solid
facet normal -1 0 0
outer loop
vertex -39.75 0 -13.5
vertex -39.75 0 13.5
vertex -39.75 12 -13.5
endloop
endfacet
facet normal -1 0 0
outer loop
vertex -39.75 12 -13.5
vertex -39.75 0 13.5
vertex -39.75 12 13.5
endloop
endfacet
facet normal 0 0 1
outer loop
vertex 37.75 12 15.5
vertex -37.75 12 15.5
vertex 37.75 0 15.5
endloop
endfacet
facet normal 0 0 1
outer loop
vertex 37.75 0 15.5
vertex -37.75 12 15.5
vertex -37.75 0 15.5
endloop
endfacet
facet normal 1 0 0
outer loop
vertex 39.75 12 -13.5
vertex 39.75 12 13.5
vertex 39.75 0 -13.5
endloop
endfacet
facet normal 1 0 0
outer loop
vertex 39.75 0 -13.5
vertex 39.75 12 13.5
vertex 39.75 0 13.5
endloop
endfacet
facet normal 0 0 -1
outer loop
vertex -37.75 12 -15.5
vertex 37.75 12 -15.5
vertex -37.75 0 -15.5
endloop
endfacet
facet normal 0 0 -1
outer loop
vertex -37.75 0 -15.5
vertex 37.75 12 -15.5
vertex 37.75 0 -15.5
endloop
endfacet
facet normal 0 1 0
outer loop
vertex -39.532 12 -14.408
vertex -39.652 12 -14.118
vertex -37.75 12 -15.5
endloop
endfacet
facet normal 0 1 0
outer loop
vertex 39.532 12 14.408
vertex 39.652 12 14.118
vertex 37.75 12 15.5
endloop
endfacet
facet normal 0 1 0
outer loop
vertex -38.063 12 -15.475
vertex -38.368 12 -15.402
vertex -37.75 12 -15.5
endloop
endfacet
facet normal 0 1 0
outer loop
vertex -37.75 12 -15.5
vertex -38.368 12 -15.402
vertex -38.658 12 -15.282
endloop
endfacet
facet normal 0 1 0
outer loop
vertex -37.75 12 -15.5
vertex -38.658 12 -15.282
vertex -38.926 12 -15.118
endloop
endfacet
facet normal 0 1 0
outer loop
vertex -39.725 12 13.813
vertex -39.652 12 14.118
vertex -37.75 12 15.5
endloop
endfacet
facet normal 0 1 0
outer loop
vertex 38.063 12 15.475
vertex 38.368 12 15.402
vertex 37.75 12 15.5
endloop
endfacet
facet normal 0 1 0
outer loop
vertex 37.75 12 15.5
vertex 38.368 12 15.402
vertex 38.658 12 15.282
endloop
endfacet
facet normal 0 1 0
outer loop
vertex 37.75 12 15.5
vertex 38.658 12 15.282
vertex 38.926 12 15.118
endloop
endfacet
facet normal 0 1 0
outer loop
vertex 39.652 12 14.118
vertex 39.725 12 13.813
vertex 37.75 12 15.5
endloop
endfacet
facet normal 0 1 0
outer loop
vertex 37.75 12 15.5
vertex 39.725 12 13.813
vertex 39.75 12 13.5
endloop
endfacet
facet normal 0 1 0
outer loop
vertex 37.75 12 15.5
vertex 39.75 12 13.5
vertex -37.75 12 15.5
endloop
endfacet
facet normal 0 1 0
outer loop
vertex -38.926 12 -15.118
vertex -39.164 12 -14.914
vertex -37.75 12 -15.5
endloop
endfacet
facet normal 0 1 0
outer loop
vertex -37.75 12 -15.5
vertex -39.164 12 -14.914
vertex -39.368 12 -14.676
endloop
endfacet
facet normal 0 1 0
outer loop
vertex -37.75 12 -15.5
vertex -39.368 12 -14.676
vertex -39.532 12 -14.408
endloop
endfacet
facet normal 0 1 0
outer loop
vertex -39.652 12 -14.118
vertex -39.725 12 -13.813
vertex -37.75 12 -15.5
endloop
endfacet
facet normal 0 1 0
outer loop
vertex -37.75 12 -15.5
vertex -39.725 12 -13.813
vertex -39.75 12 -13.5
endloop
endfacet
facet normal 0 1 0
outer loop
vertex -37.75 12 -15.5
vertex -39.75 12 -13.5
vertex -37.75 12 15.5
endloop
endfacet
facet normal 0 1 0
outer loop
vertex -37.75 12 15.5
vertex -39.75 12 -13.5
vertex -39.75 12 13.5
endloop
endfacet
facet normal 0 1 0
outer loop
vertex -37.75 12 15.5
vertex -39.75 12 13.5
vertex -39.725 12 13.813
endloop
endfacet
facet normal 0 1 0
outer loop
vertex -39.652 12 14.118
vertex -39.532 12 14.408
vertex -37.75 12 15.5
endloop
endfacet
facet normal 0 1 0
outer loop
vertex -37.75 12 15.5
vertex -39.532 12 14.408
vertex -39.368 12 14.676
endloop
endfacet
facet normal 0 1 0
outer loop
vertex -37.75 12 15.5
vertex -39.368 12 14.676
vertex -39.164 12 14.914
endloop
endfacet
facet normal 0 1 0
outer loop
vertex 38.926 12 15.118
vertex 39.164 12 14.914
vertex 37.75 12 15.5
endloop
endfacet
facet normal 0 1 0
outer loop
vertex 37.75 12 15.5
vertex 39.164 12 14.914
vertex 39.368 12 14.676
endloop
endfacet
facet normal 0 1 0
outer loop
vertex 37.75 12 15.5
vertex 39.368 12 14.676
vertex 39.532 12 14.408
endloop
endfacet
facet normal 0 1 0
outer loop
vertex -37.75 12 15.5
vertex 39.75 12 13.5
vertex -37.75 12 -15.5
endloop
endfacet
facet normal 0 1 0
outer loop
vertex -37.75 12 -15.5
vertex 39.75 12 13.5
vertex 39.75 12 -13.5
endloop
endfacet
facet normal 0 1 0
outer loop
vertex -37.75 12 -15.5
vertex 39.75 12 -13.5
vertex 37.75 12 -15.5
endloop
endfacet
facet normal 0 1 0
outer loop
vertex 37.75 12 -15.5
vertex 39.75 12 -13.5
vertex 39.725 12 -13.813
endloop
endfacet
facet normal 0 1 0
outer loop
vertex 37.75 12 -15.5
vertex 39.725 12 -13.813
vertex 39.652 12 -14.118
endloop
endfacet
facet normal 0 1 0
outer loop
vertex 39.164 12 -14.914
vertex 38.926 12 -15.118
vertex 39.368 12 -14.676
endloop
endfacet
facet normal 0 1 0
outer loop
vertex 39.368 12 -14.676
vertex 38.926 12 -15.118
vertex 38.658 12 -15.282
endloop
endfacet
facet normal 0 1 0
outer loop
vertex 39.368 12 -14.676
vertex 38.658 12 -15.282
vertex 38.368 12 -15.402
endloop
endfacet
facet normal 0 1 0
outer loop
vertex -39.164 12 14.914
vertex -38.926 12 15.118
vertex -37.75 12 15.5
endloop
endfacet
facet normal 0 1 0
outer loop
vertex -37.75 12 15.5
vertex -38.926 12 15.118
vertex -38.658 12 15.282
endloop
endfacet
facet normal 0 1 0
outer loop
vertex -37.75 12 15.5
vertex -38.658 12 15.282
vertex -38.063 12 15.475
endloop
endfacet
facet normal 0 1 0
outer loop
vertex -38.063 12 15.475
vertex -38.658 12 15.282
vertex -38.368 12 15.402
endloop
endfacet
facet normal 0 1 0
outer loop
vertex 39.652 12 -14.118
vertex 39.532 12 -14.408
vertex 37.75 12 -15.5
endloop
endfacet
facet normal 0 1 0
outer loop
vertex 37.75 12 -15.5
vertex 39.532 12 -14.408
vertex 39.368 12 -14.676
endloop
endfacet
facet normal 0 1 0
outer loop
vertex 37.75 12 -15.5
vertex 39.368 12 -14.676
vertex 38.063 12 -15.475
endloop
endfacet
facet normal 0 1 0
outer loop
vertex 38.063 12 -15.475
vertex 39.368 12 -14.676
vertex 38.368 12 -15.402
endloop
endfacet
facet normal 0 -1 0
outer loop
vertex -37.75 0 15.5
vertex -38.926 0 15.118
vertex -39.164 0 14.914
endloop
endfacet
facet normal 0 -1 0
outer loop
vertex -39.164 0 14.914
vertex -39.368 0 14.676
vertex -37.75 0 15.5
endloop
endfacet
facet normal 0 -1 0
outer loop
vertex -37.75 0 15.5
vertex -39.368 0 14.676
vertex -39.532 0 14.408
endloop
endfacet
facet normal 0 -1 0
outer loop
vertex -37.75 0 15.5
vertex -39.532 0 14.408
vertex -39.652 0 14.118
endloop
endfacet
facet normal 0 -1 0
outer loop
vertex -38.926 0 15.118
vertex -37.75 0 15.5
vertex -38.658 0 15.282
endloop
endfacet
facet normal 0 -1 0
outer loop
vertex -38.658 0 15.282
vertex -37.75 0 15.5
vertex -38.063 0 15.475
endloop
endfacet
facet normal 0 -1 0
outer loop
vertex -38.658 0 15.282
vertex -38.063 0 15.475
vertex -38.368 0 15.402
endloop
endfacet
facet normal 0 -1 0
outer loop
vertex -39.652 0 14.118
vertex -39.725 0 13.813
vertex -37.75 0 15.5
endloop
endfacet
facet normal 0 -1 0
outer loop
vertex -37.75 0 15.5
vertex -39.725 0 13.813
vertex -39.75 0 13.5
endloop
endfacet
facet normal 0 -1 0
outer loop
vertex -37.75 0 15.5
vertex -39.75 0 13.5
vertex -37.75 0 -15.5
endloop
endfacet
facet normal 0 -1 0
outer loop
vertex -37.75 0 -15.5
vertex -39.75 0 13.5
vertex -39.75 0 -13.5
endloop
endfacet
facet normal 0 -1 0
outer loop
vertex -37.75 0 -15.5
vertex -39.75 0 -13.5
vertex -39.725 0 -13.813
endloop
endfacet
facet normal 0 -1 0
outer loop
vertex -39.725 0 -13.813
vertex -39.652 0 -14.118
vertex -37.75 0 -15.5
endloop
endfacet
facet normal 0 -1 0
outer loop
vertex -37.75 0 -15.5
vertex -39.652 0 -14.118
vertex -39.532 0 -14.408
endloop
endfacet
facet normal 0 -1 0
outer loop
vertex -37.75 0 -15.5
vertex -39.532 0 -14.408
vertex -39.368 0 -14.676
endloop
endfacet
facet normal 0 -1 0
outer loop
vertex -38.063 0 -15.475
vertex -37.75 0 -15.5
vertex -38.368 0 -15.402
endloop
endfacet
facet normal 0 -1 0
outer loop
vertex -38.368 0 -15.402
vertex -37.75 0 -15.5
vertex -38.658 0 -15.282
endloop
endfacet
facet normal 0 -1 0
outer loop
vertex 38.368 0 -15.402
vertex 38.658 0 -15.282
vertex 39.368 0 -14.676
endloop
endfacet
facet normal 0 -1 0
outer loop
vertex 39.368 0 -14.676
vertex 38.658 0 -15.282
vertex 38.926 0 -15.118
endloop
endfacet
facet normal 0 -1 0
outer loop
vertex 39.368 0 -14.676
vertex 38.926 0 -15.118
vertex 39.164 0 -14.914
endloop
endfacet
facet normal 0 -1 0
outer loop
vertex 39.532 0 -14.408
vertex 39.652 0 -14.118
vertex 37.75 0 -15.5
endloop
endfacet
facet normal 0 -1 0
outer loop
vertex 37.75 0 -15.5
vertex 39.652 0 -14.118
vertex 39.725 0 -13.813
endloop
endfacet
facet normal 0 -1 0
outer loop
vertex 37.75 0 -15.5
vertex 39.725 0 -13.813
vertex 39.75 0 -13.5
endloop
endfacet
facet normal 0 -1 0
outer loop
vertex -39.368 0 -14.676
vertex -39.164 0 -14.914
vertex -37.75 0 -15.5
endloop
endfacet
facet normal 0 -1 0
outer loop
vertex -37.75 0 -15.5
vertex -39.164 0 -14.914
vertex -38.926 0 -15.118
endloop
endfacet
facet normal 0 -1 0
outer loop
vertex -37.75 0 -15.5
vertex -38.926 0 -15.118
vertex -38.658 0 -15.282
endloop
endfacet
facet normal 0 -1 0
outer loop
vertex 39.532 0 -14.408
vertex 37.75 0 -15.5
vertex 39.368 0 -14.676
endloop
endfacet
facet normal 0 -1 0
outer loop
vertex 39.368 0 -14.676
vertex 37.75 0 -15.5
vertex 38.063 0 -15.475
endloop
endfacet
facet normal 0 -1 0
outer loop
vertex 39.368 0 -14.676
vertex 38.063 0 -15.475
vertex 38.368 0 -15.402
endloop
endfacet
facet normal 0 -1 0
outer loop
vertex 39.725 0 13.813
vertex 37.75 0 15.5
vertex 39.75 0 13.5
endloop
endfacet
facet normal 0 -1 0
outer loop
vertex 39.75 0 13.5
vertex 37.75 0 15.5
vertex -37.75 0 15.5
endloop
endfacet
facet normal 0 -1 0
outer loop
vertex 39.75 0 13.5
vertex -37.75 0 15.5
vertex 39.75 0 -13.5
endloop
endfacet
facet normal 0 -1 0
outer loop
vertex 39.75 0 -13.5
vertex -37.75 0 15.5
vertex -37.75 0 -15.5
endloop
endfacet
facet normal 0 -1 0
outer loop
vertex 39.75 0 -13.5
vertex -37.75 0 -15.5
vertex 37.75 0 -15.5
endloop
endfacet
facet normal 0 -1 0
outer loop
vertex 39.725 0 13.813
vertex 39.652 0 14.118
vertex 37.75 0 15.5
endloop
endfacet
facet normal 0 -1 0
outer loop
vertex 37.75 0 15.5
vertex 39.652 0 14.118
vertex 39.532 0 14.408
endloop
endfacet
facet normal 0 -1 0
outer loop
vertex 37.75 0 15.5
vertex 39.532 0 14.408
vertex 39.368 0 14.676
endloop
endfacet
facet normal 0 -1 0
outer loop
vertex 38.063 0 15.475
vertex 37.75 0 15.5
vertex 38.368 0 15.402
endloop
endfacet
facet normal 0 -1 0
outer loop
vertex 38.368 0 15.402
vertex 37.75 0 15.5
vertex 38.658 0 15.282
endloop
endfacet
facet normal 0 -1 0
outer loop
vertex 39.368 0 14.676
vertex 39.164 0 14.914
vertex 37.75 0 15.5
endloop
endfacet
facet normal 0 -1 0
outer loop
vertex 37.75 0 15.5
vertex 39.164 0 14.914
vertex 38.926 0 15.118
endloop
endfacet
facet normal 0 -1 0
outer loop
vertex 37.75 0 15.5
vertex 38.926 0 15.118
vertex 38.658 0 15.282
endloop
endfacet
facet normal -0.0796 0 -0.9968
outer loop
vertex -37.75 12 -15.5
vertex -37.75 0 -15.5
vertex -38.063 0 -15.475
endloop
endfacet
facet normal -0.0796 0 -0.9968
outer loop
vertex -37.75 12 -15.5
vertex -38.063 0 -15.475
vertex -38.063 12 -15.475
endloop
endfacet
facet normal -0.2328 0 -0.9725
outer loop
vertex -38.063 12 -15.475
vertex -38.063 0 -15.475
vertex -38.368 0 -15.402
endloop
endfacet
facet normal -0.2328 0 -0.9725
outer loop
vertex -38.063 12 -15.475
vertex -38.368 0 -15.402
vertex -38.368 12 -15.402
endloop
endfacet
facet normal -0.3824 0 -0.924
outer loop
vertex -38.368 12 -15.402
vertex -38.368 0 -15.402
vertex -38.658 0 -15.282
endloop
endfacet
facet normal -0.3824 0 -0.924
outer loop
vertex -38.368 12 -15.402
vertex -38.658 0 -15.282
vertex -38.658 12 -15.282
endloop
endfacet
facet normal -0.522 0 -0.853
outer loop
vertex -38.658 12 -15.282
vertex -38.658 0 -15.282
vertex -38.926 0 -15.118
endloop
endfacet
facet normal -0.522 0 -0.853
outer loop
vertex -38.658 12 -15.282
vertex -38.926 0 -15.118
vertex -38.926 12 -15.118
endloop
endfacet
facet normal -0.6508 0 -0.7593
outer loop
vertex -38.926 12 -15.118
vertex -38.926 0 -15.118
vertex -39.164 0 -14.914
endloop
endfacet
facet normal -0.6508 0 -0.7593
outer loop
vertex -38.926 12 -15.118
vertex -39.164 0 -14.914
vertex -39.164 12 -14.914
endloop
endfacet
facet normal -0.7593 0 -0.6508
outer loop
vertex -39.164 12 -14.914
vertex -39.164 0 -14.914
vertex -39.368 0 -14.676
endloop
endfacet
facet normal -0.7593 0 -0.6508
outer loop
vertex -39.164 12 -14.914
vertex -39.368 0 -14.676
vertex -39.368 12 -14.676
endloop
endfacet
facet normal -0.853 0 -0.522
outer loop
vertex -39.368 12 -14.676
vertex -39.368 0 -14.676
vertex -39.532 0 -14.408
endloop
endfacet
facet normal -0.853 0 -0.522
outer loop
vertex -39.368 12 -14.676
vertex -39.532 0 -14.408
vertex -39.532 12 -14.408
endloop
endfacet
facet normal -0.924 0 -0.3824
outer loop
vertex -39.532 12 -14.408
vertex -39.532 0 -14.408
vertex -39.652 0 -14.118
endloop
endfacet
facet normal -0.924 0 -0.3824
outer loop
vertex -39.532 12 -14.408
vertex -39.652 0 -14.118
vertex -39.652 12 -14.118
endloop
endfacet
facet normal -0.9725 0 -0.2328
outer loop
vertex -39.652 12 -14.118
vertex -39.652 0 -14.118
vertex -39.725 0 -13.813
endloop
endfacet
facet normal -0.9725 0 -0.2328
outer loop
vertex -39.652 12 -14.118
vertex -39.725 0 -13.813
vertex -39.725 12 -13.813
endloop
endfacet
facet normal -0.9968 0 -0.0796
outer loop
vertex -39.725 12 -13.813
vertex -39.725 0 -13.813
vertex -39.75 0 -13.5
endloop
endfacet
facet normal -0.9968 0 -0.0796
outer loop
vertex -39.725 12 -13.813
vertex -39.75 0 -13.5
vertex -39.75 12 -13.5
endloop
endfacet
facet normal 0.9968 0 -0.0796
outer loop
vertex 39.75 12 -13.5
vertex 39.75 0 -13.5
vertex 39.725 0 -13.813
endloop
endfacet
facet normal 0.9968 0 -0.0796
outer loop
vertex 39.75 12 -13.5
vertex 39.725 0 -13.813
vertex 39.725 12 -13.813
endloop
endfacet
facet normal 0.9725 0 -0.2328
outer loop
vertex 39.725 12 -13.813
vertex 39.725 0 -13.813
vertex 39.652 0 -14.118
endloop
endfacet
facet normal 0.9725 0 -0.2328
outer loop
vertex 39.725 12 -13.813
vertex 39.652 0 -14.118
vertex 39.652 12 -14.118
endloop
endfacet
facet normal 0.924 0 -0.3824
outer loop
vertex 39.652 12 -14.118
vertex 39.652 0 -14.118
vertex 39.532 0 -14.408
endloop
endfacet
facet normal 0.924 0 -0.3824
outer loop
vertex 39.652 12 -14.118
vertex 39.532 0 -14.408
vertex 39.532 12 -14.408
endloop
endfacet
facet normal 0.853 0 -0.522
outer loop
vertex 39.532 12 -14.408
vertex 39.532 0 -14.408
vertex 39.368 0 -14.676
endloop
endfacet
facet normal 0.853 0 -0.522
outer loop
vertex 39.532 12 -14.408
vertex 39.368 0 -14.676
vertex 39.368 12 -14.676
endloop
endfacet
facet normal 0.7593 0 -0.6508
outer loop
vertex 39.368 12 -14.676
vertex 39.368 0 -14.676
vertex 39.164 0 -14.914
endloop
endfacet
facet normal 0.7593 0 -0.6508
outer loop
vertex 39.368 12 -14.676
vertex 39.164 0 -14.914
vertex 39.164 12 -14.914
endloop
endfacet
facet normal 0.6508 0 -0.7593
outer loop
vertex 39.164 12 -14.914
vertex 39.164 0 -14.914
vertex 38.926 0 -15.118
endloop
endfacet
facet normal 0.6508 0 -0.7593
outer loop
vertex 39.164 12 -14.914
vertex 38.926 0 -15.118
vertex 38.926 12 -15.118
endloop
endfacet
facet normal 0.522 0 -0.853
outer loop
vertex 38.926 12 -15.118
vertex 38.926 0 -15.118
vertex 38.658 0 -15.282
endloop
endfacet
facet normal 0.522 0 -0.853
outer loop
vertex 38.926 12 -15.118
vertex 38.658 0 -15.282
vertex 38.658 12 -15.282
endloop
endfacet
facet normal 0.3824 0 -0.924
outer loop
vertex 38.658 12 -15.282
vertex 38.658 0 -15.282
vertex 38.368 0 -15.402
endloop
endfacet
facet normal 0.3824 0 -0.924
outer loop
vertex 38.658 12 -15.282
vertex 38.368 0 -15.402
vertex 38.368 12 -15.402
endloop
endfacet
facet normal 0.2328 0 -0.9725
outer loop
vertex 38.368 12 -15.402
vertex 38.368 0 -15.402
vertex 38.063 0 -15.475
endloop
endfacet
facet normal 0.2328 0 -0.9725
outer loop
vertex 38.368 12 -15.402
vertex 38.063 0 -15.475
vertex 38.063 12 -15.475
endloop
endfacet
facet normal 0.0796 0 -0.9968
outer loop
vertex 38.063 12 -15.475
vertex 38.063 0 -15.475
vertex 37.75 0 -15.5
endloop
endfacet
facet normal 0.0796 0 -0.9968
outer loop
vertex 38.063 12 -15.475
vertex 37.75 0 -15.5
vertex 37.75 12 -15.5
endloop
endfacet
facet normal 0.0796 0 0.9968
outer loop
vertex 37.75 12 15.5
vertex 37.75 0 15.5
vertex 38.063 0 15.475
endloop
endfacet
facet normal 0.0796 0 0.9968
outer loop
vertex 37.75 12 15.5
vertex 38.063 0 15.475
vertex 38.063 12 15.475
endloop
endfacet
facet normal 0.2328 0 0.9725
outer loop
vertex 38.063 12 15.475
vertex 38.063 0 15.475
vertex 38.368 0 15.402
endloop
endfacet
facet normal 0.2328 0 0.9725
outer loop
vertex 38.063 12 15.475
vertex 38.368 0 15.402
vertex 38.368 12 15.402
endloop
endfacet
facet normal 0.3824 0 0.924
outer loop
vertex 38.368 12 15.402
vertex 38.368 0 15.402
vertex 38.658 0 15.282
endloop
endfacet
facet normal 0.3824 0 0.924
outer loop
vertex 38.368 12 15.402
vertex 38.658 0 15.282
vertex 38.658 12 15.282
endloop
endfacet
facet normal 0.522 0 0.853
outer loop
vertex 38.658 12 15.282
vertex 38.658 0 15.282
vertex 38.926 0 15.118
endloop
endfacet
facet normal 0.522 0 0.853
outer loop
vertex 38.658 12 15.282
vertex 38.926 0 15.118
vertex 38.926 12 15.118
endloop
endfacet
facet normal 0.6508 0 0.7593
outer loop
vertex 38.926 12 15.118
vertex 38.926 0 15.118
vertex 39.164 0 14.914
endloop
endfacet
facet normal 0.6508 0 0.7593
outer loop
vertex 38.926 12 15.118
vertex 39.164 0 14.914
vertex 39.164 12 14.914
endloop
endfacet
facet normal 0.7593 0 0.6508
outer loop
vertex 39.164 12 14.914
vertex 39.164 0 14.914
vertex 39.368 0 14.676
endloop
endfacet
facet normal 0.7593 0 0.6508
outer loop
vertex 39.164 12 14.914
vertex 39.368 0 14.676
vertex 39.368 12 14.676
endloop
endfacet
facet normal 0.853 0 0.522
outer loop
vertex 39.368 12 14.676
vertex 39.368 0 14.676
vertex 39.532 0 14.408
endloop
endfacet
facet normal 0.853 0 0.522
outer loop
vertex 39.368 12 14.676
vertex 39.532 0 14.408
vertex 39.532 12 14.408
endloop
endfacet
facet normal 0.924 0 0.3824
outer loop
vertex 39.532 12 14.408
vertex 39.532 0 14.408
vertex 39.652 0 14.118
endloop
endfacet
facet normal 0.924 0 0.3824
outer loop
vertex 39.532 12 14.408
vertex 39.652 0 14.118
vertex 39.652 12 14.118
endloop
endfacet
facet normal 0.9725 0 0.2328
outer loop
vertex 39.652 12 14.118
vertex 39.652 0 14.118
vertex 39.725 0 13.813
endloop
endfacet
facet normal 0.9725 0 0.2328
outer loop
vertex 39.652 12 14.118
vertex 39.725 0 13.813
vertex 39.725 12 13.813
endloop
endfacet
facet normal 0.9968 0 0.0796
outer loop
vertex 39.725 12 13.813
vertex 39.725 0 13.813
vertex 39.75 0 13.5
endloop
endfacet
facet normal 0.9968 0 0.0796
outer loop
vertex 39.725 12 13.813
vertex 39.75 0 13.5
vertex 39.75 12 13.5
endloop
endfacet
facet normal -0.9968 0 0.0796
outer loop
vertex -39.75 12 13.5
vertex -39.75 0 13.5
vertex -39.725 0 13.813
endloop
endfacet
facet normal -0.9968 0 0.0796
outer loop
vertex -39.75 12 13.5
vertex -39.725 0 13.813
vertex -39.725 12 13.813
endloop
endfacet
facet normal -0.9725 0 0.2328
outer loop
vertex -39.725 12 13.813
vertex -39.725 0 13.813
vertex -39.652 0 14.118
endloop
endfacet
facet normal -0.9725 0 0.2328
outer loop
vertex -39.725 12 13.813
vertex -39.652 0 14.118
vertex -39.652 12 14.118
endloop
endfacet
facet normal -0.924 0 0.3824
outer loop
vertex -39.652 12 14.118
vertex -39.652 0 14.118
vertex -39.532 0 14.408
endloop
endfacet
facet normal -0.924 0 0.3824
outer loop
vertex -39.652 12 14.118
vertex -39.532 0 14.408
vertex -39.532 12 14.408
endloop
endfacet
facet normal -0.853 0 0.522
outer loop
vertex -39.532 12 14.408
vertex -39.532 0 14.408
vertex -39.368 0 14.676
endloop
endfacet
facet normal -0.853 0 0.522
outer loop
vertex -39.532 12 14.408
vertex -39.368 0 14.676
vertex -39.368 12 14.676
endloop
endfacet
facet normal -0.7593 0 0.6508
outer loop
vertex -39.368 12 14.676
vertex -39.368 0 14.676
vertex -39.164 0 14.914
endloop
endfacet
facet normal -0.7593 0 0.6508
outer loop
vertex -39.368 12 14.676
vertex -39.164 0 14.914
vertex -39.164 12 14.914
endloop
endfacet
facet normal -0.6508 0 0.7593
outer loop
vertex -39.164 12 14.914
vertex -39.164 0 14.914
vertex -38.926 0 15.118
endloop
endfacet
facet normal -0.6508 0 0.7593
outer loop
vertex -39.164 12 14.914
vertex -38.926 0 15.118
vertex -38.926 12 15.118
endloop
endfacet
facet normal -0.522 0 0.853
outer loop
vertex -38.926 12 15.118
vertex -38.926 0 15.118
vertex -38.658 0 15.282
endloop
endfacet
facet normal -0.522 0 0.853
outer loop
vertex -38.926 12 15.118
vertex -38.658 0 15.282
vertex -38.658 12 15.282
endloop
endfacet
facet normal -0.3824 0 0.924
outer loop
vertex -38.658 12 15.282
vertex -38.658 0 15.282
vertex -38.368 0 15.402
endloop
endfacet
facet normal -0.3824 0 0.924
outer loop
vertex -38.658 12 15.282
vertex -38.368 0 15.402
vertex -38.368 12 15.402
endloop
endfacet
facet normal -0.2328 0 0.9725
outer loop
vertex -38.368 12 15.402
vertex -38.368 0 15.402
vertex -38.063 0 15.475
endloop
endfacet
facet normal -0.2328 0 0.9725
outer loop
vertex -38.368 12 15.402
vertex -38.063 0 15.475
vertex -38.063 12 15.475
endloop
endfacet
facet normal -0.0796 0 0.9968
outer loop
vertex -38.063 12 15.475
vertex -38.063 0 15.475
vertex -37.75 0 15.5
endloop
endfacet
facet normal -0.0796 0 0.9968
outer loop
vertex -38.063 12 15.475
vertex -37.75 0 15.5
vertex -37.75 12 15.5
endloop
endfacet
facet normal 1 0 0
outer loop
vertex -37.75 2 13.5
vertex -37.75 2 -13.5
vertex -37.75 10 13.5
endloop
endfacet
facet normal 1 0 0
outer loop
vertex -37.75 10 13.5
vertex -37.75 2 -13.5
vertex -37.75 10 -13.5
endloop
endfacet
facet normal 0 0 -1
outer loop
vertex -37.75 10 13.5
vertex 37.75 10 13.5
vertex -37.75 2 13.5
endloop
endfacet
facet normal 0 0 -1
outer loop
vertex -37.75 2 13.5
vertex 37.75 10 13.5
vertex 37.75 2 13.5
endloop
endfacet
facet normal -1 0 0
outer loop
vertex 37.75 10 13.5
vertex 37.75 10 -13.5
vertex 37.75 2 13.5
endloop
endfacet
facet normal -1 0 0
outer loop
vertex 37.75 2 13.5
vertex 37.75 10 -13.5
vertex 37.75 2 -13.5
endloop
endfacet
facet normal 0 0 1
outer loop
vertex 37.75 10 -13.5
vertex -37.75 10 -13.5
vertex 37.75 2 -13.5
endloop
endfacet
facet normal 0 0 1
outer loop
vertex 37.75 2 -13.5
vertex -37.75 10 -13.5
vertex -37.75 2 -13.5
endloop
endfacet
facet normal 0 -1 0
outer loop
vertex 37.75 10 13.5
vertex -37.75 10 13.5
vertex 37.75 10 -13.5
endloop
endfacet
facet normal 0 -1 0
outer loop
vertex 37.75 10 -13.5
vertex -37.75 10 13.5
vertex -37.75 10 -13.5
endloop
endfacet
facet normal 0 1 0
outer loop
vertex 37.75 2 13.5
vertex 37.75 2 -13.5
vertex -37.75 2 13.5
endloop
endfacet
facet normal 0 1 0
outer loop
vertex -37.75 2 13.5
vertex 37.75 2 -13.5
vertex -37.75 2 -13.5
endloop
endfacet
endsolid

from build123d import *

# Parameters (mm, degrees)
SKETCH1_W           = 79.5
SKETCH1_H           = 31
BOSS_EXTRUDE1_DEPTH = 12
FILLET1_R           = 2
SHELL1_START        = -37.75
SHELL1_OUTLINE_W    = 8
SHELL1_OUTLINE_H    = 27
SHELL1_DEPTH        = 75.5


# Read off the part's stored shape, not the designer's step: Shell1
with BuildPart() as part:
    # Sketch1 → Boss-Extrude1 (new body)
    with BuildSketch(Plane(origin=(0, 0, 0), x_dir=(1, 0, 0), z_dir=(0, 1, 0))):
        Rectangle(SKETCH1_W, SKETCH1_H)
    extrude(amount=BOSS_EXTRUDE1_DEPTH)

    # Fillet1
    fillet1_edges = [part.edges().sort_by_distance(p)[0] for p in [
        (-39.75, 6, -15.5),
        (39.75, 6, -15.5),
        (39.75, 6, 15.5),
        (-39.75, 6, 15.5),
    ]]
    fillet(fillet1_edges, radius=FILLET1_R)

    # Shell1 outline → Shell1 (cut)
    with BuildSketch(Plane.YZ.offset(SHELL1_START)):
        with Locations((6, 0)):
            Rectangle(SHELL1_OUTLINE_W, SHELL1_OUTLINE_H)
    extrude(amount=SHELL1_DEPTH, mode=Mode.SUBTRACT)


solid = part.part
